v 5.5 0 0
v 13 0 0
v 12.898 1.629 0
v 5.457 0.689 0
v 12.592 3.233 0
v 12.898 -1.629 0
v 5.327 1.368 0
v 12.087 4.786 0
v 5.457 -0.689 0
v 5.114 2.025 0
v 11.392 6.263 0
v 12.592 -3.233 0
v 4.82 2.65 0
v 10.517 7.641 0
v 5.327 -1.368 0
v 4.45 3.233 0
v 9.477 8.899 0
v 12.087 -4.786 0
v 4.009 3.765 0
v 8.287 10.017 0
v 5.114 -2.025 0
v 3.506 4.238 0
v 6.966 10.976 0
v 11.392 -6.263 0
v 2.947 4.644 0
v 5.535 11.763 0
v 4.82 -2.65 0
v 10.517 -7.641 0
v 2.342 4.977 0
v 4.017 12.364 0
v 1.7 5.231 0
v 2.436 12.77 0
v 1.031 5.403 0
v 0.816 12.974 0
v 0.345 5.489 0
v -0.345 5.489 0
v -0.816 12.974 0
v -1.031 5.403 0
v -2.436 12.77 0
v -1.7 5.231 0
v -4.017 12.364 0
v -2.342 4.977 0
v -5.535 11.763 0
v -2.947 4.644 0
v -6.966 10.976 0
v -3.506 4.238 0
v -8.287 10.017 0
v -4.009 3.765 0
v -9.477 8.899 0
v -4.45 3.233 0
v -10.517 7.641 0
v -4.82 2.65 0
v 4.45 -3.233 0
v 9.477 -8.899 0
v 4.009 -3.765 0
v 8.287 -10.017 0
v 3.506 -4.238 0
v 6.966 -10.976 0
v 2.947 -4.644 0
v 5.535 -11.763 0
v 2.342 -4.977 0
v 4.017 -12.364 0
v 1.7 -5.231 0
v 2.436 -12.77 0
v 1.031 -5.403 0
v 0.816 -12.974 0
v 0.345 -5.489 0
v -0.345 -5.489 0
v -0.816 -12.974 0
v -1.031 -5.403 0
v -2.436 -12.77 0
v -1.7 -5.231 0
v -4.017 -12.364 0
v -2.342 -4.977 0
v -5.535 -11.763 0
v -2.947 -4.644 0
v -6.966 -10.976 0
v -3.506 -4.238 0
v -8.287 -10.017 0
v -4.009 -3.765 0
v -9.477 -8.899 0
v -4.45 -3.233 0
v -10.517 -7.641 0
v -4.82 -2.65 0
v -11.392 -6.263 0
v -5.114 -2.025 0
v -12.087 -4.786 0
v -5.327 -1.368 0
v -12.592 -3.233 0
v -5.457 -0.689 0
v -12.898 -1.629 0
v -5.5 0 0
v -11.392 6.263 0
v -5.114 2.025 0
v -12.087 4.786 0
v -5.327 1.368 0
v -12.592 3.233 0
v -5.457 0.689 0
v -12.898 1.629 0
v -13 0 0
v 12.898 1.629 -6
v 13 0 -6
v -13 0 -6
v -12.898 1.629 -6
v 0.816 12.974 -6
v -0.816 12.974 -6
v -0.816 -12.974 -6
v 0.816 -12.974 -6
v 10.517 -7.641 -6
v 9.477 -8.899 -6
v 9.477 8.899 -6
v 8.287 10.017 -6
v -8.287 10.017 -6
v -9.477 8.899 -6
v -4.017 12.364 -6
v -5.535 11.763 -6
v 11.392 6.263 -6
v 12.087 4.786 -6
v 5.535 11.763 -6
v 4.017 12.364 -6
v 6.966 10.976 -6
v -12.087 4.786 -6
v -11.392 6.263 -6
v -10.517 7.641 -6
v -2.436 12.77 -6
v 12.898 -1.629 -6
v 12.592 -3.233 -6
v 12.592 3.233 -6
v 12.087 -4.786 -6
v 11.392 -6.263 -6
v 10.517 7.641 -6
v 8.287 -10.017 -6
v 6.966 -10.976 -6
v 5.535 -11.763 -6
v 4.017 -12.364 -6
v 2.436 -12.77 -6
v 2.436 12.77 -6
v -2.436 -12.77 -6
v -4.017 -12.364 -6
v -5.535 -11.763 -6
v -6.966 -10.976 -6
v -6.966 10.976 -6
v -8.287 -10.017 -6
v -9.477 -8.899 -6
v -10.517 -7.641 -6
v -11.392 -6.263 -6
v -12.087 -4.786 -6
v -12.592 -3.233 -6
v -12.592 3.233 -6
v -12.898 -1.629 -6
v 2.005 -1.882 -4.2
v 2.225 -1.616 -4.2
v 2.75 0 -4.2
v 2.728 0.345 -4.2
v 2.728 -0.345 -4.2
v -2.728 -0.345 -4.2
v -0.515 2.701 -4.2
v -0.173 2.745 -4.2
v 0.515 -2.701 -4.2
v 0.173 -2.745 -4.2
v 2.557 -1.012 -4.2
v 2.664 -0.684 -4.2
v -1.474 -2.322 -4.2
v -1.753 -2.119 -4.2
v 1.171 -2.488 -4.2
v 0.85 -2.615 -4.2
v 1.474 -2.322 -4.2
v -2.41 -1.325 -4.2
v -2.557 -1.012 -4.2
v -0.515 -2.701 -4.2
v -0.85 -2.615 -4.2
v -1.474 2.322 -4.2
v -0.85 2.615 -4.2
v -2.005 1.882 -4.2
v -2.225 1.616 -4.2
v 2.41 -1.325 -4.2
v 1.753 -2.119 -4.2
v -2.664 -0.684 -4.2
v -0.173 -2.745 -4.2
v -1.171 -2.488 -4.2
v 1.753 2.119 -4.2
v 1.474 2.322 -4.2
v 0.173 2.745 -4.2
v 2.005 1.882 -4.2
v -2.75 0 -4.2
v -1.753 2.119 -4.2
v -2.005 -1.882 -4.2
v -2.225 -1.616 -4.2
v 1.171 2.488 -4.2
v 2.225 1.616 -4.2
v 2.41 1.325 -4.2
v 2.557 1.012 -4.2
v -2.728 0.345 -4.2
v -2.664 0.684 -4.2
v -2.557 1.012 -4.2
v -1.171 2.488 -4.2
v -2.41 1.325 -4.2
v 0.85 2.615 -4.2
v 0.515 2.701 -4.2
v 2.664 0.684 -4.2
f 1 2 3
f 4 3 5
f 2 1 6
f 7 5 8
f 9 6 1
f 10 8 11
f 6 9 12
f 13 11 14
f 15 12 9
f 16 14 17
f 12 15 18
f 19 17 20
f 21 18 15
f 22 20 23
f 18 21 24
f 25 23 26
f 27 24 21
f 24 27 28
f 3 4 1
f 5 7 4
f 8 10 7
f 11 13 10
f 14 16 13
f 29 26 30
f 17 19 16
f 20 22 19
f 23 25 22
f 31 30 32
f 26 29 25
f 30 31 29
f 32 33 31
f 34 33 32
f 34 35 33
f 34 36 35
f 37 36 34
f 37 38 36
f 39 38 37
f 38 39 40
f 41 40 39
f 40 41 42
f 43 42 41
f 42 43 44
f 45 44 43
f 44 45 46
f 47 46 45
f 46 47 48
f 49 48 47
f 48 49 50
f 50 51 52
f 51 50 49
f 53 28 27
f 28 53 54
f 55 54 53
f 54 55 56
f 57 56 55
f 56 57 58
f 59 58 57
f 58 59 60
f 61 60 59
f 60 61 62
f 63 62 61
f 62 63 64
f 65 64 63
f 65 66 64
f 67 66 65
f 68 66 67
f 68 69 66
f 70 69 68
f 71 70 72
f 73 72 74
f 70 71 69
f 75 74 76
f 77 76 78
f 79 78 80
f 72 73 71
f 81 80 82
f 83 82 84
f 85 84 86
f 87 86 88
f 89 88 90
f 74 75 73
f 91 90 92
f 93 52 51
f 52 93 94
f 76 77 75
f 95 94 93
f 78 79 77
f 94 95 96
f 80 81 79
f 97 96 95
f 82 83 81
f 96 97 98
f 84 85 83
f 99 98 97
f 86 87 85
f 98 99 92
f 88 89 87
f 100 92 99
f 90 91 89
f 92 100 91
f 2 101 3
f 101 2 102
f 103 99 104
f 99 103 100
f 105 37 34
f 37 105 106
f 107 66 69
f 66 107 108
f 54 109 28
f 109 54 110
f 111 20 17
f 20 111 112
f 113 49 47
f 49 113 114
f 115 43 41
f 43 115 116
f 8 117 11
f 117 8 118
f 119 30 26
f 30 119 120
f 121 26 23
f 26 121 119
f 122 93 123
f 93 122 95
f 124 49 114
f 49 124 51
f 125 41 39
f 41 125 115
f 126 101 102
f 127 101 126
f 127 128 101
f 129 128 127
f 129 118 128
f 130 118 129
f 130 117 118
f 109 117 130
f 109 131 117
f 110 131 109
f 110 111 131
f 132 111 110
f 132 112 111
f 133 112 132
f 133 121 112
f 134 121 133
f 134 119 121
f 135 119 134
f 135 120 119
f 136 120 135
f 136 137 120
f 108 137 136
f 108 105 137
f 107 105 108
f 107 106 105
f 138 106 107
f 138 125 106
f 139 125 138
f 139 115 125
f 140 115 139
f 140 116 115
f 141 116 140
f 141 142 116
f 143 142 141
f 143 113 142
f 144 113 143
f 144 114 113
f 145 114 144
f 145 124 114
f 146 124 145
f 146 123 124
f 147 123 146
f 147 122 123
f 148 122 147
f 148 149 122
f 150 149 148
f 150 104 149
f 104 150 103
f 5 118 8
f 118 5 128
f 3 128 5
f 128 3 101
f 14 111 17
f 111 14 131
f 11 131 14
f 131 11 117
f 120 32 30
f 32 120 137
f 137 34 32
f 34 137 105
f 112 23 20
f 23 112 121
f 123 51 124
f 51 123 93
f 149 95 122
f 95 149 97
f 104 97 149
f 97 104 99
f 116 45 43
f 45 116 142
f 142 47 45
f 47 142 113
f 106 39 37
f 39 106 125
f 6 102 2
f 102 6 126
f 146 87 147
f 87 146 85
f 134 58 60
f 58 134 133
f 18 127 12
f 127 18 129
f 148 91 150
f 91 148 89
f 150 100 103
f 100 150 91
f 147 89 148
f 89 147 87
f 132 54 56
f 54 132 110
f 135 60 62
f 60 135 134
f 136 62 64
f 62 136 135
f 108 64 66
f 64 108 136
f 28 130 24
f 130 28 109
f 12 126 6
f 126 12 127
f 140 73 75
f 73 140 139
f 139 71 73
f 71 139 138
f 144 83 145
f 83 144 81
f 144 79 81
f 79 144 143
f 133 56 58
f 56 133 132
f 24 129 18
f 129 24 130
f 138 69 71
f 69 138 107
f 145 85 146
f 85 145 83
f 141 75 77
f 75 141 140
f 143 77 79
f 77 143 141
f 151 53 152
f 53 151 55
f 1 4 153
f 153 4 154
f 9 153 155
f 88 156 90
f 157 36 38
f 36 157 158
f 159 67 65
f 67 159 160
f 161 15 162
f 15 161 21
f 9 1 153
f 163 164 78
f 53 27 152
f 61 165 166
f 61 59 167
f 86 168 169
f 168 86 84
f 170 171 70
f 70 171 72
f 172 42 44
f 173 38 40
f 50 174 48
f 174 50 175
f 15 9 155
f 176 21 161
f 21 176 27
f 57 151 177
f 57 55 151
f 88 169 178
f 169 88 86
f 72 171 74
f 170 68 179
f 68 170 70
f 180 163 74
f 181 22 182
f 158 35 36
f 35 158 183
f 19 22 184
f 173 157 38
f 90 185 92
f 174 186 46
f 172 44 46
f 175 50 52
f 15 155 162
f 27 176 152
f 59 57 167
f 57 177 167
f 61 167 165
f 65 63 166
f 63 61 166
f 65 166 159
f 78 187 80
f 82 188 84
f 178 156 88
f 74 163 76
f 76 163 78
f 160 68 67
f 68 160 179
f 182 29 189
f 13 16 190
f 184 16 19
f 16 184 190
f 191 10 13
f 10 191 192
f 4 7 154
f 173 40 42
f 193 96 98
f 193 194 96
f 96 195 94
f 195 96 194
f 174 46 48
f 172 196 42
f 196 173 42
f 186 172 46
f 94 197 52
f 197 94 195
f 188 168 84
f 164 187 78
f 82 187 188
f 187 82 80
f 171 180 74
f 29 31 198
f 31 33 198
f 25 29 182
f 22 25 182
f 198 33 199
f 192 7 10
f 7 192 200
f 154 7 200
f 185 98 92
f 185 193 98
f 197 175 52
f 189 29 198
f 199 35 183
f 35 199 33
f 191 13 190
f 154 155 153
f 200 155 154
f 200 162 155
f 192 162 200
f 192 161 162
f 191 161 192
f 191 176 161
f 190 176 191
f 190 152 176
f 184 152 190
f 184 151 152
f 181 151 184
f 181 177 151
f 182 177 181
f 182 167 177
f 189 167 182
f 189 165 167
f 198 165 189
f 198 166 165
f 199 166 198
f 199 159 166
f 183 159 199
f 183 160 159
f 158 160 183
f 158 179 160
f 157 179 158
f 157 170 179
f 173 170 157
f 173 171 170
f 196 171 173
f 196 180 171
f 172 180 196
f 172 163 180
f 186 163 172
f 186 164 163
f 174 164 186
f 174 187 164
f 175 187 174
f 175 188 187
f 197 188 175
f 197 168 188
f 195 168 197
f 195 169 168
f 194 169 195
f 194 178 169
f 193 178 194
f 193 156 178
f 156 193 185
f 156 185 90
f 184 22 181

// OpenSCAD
$fn = 50;


difference() {
	union() {
		translate(v = [0, 0, -3.0000000000]) {
			cylinder(h = 3, r = 10.0000000000);
		}
		translate(v = [0, 0, -6.0000000000]) {
			cylinder(h = 6, r = 13.0000000000);
		}
	}
	union() {
		translate(v = [0, 0, 0]) {
			rotate(a = [0, 0, 0]) {
				difference() {
					union() {
						#translate(v = [0, 0, -3.0000000000]) {
							cylinder(h = 3, r = 2.2500000000);
						}
						#translate(v = [0, 0, -4.2000000000]) {
							cylinder(h = 4.2000000000, r = 10.0000000000, r1 = 2.7500000000, r2 = 5.5000000000);
						}
						#translate(v = [0, 0, -3.0000000000]) {
							cylinder(h = 3, r = 2.7500000000);
						}
						#translate(v = [0, 0, -3.0000000000]) {
							cylinder(h = 3, r = 2.2500000000);
						}
					}
					union();
				}
			}
		}
	}
}
